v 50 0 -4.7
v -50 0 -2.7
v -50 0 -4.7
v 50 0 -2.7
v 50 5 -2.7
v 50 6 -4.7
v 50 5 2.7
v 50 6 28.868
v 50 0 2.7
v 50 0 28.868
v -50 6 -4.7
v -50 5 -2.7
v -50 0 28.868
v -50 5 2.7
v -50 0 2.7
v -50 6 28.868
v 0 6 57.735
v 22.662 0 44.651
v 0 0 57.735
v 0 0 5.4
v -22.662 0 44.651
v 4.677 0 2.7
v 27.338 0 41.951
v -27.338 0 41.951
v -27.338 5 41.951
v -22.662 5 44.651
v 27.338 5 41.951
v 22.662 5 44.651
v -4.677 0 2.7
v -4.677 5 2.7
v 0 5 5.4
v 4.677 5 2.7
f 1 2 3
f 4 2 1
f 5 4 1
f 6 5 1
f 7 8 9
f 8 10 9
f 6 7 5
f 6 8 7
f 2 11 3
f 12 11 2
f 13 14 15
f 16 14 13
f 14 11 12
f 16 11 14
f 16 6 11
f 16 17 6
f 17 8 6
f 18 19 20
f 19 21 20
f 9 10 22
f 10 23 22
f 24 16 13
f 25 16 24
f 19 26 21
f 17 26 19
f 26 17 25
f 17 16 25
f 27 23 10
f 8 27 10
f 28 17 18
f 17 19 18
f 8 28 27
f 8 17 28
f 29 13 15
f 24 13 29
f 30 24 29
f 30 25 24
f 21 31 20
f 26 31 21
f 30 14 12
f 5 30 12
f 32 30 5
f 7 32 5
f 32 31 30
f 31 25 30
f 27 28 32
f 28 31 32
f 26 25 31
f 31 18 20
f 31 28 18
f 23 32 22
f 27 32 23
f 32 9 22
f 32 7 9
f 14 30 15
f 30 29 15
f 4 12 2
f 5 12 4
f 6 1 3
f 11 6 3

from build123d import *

# Parameters (mm, degrees)
BOSS_EXTRUDE1_DEPTH     = 6
SKETCH2_W               = 100
SKETCH2_H               = 5.4
CUT_EXTRUDE_THIN1_DEPTH = 5
SKETCH3_OUTSIDE_W       = 132.574
SKETCH3_OUTSIDE_H       = 148.044
CUT_EXTRUDE1_DEPTH      = 6


with BuildPart() as part:
    # Sketch1 → Boss-Extrude1 (new body)
    with BuildSketch(Plane(origin=(0, 0, 0), x_dir=(1, 0, 0), z_dir=(0, 1, 0))):
        Polygon((0, 57.735026919), (-50, 28.867513459), (-50, -28.867513459), (0, -57.735026919), (50, -28.867513459), (50, 28.867513459), align=None)
    extrude(amount=BOSS_EXTRUDE1_DEPTH)

    # Sketch2 → Cut-Extrude-Thin1 (cut)
    with BuildSketch(Plane.XZ):
        Polygon((-27.33826859, 41.951270189), (-3.33826859, 0.382050808), (1.33826859, 3.082050808), (-22.66173141, 44.651270189), align=None)
        Rectangle(SKETCH2_W, SKETCH2_H)
        Polygon((22.66173141, 44.651270189), (-1.33826859, 3.082050808), (3.33826859, 0.382050808), (27.33826859, 41.951270189), align=None)
    extrude(amount=-CUT_EXTRUDE_THIN1_DEPTH, mode=Mode.SUBTRACT)

    # Sketch3 outside → Cut-Extrude1 (cut)
    with BuildSketch(Plane.XZ):
        Rectangle(SKETCH3_OUTSIDE_W, SKETCH3_OUTSIDE_H)
        Polygon((-50, 28.867513459), (0, 57.735026919), (50, 28.867513459), (50, -4.7), (-50, -4.7), align=None, mode=Mode.SUBTRACT)
    extrude(amount=-CUT_EXTRUDE1_DEPTH, mode=Mode.SUBTRACT)


solid = part.part
